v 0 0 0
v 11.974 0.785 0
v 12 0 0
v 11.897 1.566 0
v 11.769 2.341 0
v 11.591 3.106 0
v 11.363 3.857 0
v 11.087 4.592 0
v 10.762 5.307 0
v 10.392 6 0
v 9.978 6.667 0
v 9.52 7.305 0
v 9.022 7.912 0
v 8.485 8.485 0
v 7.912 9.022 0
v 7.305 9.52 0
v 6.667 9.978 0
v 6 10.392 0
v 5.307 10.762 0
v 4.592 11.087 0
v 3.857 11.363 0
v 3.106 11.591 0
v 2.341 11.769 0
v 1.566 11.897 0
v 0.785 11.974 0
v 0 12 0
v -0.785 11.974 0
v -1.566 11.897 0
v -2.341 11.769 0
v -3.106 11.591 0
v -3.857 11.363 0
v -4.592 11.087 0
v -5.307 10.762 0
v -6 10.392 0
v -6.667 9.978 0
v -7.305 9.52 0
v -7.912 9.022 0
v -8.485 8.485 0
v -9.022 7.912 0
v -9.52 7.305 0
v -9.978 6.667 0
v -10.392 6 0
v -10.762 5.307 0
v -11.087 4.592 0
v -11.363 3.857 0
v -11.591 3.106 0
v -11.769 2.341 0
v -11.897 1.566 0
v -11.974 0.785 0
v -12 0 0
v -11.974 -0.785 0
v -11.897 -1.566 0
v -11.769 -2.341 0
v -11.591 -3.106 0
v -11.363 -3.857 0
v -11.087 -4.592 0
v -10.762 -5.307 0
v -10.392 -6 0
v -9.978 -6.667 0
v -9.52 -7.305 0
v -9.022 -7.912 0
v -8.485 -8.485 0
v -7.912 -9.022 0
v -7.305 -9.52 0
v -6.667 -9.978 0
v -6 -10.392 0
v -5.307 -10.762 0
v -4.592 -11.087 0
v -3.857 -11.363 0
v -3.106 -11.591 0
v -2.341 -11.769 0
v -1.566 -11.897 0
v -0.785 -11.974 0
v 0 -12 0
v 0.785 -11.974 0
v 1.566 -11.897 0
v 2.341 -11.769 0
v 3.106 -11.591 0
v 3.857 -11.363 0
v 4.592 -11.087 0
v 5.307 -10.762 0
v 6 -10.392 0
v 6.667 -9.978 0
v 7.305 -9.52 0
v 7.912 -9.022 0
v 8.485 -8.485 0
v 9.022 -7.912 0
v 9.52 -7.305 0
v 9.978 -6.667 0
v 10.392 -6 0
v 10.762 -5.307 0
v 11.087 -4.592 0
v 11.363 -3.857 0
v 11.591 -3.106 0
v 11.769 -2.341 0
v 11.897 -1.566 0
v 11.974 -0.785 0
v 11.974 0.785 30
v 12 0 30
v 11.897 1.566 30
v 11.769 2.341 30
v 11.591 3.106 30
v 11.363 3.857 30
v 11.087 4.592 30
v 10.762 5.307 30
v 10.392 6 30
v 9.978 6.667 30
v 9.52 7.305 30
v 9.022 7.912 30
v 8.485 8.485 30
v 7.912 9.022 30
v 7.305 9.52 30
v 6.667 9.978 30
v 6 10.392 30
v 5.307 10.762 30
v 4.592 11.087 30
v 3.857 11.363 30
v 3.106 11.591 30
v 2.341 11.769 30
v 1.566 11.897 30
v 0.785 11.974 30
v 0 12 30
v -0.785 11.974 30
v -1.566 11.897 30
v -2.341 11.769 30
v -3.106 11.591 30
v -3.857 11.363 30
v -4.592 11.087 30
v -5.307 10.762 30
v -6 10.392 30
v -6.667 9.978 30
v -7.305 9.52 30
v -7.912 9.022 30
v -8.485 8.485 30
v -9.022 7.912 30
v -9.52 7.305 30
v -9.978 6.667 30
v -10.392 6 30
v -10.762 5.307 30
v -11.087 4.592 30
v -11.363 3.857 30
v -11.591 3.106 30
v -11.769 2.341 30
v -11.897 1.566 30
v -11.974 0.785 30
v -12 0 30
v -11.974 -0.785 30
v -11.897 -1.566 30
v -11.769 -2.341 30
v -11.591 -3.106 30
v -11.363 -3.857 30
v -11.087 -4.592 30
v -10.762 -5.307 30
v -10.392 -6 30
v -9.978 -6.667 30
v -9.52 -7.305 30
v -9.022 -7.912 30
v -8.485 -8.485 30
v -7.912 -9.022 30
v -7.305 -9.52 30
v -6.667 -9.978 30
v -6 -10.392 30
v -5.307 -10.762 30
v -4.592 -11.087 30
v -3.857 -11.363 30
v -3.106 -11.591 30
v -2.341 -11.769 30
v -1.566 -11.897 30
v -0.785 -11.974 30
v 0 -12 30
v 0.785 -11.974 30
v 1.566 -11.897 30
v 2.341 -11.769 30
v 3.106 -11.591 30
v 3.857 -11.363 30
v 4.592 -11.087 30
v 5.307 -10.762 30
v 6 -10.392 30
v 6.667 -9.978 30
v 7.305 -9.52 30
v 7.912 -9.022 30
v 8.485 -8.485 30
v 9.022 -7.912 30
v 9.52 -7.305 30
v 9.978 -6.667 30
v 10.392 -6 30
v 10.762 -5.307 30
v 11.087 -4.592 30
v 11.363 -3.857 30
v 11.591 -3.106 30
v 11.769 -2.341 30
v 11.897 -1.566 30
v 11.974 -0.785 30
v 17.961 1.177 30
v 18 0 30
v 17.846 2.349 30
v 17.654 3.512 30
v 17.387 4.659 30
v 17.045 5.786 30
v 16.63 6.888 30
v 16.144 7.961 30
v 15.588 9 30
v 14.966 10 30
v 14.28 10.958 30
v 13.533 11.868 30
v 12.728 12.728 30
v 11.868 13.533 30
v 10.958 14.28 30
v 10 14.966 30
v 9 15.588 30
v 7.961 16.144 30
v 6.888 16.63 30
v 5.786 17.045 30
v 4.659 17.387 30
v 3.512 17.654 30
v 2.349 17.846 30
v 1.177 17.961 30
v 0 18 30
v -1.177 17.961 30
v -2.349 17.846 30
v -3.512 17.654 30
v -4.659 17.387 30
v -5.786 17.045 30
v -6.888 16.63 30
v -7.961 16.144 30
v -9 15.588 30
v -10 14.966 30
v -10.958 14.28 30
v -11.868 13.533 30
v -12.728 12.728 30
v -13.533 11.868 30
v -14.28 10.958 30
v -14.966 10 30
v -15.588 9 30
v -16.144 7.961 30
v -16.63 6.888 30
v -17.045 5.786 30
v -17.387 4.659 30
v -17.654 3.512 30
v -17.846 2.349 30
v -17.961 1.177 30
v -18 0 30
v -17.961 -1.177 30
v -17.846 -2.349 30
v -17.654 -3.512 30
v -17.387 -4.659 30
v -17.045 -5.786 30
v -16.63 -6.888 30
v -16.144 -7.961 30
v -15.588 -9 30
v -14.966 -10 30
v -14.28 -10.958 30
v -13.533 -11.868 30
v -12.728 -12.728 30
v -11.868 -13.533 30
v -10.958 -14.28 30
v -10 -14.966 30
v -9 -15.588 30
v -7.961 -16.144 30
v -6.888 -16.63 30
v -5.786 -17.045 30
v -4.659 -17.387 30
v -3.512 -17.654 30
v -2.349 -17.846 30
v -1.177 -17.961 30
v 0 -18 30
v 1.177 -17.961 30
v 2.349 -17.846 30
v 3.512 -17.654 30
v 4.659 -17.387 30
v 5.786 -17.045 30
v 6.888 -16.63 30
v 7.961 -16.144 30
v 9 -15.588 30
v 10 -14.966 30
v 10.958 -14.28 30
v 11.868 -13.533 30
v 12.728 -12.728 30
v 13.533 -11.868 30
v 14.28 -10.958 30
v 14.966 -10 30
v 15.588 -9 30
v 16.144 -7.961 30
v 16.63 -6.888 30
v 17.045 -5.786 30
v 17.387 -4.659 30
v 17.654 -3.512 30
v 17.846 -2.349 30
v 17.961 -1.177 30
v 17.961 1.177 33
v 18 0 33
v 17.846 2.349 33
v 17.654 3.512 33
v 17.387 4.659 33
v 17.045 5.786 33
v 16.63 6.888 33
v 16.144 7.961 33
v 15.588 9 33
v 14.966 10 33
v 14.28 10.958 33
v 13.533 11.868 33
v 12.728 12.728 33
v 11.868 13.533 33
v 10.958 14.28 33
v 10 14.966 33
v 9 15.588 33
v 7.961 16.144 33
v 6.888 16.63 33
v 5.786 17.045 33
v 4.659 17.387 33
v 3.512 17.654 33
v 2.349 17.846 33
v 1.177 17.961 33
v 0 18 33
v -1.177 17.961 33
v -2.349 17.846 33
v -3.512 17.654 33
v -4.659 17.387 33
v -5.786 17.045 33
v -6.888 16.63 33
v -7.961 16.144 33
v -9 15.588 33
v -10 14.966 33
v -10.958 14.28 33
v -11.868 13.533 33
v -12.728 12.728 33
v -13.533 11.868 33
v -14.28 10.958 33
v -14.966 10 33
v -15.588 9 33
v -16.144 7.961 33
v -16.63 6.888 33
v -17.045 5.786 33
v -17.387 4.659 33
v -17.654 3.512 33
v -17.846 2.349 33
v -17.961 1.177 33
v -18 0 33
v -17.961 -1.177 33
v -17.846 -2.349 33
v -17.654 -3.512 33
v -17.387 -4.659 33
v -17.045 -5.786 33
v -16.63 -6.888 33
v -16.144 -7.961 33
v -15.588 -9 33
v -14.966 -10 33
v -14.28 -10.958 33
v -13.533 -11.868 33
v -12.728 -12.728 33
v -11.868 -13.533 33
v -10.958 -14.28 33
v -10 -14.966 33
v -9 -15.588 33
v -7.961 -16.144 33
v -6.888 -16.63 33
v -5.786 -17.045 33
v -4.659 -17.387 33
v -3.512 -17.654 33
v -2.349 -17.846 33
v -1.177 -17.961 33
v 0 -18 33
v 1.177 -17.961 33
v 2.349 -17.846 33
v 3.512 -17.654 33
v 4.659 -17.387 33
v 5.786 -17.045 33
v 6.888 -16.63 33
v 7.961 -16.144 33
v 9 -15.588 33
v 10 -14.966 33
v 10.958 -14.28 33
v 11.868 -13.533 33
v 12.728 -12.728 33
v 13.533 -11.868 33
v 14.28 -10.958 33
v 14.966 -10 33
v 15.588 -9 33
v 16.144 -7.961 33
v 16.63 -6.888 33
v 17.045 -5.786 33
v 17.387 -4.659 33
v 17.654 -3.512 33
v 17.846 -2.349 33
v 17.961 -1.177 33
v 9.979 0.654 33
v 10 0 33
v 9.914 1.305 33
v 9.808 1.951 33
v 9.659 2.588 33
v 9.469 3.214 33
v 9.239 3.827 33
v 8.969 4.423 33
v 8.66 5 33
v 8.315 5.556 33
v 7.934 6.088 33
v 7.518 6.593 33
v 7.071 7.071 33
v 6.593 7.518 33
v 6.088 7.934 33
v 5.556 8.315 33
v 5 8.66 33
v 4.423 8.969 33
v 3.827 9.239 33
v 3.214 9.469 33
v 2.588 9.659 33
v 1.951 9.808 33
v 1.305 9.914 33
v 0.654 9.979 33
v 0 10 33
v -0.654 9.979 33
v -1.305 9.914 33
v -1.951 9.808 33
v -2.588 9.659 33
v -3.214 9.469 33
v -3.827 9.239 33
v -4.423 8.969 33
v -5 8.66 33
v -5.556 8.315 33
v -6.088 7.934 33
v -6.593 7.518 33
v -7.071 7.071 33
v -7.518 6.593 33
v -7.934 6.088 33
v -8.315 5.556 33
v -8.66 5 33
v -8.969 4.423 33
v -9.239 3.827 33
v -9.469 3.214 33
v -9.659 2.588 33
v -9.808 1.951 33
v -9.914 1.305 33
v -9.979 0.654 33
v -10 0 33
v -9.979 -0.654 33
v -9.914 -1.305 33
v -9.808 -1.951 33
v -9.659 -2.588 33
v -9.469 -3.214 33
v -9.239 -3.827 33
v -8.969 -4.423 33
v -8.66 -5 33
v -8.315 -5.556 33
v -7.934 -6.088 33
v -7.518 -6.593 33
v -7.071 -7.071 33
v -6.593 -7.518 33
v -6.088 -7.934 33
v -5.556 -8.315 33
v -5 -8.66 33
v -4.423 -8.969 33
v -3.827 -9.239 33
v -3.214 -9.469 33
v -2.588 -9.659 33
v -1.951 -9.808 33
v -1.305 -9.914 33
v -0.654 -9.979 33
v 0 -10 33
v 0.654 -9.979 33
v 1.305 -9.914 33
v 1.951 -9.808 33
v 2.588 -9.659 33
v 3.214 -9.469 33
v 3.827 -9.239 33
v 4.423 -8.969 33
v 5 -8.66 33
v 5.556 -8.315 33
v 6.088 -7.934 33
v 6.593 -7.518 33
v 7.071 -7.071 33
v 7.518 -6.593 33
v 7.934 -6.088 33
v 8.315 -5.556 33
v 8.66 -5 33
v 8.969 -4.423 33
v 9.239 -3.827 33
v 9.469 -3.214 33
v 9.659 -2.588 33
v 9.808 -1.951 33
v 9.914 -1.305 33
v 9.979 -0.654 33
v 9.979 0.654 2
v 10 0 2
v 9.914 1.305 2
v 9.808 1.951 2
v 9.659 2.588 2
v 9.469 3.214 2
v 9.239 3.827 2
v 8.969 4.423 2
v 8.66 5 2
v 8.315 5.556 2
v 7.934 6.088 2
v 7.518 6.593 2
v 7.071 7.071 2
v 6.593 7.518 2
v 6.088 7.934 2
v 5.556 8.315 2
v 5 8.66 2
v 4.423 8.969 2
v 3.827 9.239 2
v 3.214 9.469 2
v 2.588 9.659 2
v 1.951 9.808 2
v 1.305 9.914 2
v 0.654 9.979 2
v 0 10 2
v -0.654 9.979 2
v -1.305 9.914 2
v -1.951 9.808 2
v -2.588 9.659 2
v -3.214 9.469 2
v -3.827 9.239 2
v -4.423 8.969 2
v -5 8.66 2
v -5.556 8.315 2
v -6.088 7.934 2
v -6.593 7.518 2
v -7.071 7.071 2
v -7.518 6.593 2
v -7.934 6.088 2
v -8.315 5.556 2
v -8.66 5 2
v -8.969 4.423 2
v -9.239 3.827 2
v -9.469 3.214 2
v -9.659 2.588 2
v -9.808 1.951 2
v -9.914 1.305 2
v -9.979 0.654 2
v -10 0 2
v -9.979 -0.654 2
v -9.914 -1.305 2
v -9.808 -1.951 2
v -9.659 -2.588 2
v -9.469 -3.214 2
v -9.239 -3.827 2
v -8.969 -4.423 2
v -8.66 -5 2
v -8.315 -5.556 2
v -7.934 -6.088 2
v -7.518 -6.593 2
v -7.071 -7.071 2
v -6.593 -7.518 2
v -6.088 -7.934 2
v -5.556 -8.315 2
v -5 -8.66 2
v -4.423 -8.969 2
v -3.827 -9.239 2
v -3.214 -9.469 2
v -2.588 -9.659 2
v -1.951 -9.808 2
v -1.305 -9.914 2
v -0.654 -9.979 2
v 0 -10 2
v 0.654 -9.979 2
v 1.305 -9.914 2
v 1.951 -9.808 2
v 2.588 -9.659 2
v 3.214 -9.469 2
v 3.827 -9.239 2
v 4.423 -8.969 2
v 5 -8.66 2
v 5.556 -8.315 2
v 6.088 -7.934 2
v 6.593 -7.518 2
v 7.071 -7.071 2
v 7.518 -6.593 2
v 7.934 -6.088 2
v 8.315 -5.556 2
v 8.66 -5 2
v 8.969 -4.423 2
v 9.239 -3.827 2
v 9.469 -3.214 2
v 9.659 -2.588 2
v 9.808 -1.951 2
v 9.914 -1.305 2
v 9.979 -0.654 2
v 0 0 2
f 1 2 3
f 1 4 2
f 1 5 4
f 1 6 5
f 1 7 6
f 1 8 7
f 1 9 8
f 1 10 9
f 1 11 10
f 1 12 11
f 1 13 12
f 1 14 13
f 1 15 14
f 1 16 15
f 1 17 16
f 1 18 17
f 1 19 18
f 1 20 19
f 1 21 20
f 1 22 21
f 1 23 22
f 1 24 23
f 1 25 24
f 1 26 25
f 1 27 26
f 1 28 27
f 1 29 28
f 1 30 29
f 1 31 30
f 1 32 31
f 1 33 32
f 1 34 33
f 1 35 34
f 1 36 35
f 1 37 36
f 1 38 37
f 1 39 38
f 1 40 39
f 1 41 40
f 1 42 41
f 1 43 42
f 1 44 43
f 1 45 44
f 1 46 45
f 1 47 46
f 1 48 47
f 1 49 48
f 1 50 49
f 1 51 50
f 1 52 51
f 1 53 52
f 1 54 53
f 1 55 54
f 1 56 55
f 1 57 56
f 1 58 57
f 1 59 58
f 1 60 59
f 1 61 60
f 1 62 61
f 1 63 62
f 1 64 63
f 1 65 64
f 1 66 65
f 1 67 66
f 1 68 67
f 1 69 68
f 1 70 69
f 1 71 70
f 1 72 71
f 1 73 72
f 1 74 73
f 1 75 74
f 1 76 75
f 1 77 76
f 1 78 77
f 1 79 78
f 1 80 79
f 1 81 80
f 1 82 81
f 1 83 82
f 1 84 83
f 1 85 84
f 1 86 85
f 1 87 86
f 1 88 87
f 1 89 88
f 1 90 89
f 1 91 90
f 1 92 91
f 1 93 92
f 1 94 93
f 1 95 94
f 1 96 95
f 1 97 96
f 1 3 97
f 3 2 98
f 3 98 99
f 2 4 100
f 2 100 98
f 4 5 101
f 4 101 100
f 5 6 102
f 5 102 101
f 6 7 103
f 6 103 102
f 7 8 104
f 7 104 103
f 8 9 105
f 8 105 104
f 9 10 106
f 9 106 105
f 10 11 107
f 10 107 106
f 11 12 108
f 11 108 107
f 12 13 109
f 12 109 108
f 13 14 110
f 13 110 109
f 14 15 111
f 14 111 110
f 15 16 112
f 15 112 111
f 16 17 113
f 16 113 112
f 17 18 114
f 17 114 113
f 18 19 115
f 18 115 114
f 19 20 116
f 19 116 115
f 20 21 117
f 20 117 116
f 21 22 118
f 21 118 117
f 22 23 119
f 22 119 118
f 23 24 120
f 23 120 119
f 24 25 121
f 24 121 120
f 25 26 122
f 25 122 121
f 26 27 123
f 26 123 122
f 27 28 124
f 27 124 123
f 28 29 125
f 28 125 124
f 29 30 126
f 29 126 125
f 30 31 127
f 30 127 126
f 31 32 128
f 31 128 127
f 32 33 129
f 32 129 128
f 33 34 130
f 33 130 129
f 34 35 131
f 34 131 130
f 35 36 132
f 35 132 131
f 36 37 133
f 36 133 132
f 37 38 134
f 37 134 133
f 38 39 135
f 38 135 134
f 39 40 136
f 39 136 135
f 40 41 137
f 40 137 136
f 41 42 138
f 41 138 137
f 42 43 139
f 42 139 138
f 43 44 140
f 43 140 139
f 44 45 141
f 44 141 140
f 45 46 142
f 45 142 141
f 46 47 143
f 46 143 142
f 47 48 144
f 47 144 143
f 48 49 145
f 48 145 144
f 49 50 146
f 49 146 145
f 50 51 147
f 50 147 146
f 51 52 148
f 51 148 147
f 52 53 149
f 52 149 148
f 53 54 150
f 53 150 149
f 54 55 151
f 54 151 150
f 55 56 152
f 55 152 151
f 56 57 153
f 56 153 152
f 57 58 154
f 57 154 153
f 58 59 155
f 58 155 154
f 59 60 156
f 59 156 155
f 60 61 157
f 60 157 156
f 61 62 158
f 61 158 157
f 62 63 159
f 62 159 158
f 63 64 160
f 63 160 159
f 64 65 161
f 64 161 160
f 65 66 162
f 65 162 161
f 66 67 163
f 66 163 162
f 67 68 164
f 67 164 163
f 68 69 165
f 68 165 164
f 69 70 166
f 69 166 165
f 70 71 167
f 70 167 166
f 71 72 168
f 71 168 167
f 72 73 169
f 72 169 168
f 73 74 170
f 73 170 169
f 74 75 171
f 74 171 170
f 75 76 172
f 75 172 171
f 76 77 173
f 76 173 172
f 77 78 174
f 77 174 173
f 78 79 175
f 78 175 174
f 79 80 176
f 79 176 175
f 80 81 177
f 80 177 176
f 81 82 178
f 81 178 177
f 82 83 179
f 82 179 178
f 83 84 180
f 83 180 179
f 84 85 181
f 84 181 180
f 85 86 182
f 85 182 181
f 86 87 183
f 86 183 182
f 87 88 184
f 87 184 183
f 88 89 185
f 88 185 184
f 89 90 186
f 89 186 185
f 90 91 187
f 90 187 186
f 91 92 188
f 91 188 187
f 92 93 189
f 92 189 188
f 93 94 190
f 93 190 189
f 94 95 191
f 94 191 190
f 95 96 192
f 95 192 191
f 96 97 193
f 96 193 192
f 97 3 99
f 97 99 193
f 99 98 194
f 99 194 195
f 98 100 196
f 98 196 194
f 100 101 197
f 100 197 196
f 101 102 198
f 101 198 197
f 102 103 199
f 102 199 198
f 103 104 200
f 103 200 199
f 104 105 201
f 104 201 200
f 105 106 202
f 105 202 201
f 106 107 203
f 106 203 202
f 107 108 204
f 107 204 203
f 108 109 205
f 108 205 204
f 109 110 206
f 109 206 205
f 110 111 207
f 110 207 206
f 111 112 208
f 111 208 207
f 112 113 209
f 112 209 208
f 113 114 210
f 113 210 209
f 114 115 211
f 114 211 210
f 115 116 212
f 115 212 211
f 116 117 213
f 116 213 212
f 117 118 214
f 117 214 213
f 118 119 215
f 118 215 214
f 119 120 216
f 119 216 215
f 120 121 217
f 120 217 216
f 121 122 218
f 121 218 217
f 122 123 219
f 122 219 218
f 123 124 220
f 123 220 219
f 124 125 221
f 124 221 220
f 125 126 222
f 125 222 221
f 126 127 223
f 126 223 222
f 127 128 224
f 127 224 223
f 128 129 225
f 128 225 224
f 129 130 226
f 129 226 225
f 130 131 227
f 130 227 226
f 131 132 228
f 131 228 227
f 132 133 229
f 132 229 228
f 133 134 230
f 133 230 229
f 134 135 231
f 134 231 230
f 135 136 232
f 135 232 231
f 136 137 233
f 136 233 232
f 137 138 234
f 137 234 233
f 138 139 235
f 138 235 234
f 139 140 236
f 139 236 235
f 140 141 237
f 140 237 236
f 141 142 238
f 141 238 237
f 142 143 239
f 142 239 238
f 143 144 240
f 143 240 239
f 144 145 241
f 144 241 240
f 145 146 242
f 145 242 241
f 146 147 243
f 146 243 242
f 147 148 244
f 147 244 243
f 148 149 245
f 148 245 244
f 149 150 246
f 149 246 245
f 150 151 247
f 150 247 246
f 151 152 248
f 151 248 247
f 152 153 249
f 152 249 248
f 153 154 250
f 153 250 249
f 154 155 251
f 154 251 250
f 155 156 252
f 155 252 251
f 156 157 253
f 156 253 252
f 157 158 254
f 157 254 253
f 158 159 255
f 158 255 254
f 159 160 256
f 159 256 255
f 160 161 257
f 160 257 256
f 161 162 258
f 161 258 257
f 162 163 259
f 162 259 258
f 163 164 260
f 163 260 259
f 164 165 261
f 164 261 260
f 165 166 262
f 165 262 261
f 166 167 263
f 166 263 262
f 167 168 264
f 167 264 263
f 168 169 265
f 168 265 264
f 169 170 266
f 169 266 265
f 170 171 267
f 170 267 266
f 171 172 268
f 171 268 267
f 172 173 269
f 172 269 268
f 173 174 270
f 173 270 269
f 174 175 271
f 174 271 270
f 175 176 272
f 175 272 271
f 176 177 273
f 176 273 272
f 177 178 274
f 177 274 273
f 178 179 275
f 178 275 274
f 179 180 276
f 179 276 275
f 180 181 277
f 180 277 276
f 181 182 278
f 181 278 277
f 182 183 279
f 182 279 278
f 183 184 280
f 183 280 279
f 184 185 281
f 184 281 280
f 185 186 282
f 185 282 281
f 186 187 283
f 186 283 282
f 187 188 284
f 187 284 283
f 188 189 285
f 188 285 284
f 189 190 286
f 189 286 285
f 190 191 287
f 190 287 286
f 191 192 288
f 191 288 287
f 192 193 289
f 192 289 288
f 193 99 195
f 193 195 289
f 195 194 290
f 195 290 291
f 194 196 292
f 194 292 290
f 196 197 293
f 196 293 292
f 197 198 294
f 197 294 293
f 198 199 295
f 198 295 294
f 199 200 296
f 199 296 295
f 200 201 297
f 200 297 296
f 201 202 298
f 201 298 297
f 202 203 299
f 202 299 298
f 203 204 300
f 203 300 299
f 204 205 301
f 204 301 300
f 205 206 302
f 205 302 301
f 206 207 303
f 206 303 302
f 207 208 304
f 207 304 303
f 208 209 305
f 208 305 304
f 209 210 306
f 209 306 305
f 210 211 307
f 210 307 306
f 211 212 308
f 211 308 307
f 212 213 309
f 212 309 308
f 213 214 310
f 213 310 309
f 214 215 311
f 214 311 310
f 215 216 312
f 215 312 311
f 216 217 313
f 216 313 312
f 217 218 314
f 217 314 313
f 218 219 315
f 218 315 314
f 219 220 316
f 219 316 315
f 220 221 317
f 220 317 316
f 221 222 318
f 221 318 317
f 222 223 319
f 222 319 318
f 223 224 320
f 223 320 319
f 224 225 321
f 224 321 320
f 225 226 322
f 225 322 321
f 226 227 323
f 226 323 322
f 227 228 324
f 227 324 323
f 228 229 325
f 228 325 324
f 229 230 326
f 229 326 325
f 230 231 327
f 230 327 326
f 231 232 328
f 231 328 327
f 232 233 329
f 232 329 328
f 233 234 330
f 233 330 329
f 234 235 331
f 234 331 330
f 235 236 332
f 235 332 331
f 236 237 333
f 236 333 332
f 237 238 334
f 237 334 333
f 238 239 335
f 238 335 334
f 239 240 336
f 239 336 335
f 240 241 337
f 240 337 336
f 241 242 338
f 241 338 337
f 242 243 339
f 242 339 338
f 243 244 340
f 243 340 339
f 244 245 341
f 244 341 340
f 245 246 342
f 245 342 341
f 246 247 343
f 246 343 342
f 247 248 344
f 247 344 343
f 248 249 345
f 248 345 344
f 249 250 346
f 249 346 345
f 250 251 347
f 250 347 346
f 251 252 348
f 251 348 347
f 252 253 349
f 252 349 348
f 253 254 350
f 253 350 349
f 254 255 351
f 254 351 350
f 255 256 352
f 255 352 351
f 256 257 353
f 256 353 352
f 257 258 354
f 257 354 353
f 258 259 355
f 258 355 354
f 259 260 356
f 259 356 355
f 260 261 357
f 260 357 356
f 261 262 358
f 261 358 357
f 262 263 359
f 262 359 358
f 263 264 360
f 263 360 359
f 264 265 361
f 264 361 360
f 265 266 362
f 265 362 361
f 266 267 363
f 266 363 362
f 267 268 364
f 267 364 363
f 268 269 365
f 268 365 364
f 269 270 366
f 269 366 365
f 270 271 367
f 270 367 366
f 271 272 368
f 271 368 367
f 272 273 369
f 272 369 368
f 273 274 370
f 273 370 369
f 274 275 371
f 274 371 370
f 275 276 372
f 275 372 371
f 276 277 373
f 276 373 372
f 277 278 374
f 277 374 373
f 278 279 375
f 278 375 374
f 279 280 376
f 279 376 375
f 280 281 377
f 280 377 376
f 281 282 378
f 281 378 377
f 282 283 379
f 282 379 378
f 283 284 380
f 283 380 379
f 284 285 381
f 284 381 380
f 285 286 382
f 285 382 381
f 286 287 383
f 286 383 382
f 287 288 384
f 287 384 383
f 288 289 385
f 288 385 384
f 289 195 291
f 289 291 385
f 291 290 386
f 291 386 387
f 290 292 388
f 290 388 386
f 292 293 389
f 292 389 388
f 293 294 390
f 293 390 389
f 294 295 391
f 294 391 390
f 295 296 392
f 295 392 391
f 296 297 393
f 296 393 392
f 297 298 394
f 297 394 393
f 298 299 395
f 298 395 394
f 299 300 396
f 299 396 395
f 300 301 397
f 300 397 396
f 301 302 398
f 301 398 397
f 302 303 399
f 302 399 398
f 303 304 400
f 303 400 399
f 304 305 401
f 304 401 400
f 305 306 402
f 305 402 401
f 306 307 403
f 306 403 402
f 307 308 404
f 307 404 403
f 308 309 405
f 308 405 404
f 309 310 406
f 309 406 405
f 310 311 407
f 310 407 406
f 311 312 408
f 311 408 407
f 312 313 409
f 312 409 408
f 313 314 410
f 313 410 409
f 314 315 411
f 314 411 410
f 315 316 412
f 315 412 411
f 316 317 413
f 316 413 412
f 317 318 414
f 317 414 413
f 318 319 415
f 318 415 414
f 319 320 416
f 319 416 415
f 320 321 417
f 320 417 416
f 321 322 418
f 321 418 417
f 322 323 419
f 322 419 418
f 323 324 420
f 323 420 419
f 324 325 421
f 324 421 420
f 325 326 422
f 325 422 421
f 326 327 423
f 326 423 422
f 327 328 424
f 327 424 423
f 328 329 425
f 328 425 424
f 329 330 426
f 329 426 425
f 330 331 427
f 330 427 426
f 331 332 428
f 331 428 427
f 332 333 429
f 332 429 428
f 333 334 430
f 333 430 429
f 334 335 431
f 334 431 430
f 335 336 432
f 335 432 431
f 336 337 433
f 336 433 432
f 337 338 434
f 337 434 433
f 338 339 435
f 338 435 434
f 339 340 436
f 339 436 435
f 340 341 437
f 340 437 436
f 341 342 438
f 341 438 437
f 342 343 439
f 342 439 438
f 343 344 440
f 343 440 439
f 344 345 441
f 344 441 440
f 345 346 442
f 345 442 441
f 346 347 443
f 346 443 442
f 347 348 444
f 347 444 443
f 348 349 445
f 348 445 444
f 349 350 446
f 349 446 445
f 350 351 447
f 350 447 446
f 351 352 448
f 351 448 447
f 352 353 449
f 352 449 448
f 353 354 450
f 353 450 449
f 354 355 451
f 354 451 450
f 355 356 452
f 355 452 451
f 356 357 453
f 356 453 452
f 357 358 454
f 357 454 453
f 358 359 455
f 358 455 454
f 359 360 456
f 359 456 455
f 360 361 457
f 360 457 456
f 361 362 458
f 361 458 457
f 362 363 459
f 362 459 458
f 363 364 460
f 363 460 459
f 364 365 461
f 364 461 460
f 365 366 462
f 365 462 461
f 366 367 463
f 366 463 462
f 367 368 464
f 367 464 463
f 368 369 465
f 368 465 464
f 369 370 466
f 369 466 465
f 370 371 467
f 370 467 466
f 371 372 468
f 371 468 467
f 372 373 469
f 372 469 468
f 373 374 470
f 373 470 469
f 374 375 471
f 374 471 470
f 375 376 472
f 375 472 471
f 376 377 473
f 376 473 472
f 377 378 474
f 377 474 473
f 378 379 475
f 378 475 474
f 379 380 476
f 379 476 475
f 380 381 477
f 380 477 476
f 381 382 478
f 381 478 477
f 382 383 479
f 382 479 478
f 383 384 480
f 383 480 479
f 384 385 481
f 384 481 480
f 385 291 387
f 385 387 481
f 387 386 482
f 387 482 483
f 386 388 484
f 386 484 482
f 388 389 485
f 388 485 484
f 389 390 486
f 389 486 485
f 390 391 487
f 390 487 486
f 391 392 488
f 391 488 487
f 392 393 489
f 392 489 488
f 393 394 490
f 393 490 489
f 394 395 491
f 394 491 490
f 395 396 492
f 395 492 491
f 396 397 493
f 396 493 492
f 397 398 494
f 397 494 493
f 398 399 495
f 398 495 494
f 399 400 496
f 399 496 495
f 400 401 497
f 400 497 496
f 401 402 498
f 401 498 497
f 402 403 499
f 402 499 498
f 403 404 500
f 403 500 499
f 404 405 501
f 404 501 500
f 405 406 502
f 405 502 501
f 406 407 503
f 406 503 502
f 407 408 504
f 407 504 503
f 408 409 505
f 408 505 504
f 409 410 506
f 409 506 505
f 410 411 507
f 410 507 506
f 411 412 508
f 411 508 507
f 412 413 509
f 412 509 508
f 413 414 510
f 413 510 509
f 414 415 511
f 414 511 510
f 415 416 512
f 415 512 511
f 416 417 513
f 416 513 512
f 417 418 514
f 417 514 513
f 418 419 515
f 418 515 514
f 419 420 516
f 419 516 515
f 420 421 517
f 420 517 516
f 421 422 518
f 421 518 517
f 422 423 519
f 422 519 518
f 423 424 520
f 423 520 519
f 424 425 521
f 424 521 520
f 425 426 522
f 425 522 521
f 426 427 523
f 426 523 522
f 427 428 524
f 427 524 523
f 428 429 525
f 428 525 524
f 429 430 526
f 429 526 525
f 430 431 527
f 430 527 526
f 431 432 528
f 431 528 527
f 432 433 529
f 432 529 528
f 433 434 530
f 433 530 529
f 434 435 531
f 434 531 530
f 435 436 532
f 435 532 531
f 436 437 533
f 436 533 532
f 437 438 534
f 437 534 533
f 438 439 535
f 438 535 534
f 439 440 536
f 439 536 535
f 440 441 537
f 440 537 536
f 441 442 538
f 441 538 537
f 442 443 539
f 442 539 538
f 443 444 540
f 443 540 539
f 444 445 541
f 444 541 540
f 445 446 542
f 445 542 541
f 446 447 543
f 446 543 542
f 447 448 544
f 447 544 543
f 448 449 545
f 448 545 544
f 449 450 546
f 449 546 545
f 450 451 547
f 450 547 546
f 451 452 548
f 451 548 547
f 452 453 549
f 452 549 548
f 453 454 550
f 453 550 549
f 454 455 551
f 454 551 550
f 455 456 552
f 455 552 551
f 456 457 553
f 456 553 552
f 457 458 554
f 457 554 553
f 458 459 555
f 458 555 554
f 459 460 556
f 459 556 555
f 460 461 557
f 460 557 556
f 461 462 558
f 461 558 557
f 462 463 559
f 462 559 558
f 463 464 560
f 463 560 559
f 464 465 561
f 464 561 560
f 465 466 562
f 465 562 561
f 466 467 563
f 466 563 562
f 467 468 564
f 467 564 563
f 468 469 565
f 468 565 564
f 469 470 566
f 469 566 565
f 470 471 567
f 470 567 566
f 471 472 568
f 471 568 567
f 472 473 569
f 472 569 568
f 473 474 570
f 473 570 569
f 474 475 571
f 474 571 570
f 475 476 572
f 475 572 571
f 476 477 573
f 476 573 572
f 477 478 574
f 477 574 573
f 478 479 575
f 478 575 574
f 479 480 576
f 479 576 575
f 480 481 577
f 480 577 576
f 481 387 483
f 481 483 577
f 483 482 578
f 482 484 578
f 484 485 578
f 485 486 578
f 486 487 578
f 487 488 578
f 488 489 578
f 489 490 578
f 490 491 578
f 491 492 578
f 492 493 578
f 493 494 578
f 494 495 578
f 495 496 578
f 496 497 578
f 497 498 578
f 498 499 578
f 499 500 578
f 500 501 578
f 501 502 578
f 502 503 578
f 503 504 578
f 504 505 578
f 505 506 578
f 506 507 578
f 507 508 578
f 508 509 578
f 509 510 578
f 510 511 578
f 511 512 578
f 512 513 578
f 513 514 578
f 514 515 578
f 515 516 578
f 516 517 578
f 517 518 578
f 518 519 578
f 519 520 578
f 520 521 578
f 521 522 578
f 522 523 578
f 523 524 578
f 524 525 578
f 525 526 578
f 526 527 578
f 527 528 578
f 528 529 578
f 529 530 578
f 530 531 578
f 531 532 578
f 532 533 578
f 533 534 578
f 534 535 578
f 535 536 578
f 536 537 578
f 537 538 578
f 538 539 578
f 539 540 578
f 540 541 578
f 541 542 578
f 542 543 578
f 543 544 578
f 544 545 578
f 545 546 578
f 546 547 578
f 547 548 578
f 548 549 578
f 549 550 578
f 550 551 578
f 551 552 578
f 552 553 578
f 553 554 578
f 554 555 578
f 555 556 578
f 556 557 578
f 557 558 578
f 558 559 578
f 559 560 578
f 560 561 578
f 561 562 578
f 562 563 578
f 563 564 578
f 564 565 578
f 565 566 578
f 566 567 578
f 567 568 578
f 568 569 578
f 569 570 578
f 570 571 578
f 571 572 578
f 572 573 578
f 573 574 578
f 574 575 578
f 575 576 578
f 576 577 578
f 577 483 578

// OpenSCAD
// Original MechIntel educational model. CC0-1.0. Units: mm.
// Not a standardized or load-rated component.
$fn=96;
// Section points: [radius, height], mm. Edit to change the profile.
section=[[0, 0], [12, 0], [12, 30], [18, 30], [18, 33], [10, 33], [10, 2], [0, 2]];
rotate_extrude($fn=96) polygon(points=section);
